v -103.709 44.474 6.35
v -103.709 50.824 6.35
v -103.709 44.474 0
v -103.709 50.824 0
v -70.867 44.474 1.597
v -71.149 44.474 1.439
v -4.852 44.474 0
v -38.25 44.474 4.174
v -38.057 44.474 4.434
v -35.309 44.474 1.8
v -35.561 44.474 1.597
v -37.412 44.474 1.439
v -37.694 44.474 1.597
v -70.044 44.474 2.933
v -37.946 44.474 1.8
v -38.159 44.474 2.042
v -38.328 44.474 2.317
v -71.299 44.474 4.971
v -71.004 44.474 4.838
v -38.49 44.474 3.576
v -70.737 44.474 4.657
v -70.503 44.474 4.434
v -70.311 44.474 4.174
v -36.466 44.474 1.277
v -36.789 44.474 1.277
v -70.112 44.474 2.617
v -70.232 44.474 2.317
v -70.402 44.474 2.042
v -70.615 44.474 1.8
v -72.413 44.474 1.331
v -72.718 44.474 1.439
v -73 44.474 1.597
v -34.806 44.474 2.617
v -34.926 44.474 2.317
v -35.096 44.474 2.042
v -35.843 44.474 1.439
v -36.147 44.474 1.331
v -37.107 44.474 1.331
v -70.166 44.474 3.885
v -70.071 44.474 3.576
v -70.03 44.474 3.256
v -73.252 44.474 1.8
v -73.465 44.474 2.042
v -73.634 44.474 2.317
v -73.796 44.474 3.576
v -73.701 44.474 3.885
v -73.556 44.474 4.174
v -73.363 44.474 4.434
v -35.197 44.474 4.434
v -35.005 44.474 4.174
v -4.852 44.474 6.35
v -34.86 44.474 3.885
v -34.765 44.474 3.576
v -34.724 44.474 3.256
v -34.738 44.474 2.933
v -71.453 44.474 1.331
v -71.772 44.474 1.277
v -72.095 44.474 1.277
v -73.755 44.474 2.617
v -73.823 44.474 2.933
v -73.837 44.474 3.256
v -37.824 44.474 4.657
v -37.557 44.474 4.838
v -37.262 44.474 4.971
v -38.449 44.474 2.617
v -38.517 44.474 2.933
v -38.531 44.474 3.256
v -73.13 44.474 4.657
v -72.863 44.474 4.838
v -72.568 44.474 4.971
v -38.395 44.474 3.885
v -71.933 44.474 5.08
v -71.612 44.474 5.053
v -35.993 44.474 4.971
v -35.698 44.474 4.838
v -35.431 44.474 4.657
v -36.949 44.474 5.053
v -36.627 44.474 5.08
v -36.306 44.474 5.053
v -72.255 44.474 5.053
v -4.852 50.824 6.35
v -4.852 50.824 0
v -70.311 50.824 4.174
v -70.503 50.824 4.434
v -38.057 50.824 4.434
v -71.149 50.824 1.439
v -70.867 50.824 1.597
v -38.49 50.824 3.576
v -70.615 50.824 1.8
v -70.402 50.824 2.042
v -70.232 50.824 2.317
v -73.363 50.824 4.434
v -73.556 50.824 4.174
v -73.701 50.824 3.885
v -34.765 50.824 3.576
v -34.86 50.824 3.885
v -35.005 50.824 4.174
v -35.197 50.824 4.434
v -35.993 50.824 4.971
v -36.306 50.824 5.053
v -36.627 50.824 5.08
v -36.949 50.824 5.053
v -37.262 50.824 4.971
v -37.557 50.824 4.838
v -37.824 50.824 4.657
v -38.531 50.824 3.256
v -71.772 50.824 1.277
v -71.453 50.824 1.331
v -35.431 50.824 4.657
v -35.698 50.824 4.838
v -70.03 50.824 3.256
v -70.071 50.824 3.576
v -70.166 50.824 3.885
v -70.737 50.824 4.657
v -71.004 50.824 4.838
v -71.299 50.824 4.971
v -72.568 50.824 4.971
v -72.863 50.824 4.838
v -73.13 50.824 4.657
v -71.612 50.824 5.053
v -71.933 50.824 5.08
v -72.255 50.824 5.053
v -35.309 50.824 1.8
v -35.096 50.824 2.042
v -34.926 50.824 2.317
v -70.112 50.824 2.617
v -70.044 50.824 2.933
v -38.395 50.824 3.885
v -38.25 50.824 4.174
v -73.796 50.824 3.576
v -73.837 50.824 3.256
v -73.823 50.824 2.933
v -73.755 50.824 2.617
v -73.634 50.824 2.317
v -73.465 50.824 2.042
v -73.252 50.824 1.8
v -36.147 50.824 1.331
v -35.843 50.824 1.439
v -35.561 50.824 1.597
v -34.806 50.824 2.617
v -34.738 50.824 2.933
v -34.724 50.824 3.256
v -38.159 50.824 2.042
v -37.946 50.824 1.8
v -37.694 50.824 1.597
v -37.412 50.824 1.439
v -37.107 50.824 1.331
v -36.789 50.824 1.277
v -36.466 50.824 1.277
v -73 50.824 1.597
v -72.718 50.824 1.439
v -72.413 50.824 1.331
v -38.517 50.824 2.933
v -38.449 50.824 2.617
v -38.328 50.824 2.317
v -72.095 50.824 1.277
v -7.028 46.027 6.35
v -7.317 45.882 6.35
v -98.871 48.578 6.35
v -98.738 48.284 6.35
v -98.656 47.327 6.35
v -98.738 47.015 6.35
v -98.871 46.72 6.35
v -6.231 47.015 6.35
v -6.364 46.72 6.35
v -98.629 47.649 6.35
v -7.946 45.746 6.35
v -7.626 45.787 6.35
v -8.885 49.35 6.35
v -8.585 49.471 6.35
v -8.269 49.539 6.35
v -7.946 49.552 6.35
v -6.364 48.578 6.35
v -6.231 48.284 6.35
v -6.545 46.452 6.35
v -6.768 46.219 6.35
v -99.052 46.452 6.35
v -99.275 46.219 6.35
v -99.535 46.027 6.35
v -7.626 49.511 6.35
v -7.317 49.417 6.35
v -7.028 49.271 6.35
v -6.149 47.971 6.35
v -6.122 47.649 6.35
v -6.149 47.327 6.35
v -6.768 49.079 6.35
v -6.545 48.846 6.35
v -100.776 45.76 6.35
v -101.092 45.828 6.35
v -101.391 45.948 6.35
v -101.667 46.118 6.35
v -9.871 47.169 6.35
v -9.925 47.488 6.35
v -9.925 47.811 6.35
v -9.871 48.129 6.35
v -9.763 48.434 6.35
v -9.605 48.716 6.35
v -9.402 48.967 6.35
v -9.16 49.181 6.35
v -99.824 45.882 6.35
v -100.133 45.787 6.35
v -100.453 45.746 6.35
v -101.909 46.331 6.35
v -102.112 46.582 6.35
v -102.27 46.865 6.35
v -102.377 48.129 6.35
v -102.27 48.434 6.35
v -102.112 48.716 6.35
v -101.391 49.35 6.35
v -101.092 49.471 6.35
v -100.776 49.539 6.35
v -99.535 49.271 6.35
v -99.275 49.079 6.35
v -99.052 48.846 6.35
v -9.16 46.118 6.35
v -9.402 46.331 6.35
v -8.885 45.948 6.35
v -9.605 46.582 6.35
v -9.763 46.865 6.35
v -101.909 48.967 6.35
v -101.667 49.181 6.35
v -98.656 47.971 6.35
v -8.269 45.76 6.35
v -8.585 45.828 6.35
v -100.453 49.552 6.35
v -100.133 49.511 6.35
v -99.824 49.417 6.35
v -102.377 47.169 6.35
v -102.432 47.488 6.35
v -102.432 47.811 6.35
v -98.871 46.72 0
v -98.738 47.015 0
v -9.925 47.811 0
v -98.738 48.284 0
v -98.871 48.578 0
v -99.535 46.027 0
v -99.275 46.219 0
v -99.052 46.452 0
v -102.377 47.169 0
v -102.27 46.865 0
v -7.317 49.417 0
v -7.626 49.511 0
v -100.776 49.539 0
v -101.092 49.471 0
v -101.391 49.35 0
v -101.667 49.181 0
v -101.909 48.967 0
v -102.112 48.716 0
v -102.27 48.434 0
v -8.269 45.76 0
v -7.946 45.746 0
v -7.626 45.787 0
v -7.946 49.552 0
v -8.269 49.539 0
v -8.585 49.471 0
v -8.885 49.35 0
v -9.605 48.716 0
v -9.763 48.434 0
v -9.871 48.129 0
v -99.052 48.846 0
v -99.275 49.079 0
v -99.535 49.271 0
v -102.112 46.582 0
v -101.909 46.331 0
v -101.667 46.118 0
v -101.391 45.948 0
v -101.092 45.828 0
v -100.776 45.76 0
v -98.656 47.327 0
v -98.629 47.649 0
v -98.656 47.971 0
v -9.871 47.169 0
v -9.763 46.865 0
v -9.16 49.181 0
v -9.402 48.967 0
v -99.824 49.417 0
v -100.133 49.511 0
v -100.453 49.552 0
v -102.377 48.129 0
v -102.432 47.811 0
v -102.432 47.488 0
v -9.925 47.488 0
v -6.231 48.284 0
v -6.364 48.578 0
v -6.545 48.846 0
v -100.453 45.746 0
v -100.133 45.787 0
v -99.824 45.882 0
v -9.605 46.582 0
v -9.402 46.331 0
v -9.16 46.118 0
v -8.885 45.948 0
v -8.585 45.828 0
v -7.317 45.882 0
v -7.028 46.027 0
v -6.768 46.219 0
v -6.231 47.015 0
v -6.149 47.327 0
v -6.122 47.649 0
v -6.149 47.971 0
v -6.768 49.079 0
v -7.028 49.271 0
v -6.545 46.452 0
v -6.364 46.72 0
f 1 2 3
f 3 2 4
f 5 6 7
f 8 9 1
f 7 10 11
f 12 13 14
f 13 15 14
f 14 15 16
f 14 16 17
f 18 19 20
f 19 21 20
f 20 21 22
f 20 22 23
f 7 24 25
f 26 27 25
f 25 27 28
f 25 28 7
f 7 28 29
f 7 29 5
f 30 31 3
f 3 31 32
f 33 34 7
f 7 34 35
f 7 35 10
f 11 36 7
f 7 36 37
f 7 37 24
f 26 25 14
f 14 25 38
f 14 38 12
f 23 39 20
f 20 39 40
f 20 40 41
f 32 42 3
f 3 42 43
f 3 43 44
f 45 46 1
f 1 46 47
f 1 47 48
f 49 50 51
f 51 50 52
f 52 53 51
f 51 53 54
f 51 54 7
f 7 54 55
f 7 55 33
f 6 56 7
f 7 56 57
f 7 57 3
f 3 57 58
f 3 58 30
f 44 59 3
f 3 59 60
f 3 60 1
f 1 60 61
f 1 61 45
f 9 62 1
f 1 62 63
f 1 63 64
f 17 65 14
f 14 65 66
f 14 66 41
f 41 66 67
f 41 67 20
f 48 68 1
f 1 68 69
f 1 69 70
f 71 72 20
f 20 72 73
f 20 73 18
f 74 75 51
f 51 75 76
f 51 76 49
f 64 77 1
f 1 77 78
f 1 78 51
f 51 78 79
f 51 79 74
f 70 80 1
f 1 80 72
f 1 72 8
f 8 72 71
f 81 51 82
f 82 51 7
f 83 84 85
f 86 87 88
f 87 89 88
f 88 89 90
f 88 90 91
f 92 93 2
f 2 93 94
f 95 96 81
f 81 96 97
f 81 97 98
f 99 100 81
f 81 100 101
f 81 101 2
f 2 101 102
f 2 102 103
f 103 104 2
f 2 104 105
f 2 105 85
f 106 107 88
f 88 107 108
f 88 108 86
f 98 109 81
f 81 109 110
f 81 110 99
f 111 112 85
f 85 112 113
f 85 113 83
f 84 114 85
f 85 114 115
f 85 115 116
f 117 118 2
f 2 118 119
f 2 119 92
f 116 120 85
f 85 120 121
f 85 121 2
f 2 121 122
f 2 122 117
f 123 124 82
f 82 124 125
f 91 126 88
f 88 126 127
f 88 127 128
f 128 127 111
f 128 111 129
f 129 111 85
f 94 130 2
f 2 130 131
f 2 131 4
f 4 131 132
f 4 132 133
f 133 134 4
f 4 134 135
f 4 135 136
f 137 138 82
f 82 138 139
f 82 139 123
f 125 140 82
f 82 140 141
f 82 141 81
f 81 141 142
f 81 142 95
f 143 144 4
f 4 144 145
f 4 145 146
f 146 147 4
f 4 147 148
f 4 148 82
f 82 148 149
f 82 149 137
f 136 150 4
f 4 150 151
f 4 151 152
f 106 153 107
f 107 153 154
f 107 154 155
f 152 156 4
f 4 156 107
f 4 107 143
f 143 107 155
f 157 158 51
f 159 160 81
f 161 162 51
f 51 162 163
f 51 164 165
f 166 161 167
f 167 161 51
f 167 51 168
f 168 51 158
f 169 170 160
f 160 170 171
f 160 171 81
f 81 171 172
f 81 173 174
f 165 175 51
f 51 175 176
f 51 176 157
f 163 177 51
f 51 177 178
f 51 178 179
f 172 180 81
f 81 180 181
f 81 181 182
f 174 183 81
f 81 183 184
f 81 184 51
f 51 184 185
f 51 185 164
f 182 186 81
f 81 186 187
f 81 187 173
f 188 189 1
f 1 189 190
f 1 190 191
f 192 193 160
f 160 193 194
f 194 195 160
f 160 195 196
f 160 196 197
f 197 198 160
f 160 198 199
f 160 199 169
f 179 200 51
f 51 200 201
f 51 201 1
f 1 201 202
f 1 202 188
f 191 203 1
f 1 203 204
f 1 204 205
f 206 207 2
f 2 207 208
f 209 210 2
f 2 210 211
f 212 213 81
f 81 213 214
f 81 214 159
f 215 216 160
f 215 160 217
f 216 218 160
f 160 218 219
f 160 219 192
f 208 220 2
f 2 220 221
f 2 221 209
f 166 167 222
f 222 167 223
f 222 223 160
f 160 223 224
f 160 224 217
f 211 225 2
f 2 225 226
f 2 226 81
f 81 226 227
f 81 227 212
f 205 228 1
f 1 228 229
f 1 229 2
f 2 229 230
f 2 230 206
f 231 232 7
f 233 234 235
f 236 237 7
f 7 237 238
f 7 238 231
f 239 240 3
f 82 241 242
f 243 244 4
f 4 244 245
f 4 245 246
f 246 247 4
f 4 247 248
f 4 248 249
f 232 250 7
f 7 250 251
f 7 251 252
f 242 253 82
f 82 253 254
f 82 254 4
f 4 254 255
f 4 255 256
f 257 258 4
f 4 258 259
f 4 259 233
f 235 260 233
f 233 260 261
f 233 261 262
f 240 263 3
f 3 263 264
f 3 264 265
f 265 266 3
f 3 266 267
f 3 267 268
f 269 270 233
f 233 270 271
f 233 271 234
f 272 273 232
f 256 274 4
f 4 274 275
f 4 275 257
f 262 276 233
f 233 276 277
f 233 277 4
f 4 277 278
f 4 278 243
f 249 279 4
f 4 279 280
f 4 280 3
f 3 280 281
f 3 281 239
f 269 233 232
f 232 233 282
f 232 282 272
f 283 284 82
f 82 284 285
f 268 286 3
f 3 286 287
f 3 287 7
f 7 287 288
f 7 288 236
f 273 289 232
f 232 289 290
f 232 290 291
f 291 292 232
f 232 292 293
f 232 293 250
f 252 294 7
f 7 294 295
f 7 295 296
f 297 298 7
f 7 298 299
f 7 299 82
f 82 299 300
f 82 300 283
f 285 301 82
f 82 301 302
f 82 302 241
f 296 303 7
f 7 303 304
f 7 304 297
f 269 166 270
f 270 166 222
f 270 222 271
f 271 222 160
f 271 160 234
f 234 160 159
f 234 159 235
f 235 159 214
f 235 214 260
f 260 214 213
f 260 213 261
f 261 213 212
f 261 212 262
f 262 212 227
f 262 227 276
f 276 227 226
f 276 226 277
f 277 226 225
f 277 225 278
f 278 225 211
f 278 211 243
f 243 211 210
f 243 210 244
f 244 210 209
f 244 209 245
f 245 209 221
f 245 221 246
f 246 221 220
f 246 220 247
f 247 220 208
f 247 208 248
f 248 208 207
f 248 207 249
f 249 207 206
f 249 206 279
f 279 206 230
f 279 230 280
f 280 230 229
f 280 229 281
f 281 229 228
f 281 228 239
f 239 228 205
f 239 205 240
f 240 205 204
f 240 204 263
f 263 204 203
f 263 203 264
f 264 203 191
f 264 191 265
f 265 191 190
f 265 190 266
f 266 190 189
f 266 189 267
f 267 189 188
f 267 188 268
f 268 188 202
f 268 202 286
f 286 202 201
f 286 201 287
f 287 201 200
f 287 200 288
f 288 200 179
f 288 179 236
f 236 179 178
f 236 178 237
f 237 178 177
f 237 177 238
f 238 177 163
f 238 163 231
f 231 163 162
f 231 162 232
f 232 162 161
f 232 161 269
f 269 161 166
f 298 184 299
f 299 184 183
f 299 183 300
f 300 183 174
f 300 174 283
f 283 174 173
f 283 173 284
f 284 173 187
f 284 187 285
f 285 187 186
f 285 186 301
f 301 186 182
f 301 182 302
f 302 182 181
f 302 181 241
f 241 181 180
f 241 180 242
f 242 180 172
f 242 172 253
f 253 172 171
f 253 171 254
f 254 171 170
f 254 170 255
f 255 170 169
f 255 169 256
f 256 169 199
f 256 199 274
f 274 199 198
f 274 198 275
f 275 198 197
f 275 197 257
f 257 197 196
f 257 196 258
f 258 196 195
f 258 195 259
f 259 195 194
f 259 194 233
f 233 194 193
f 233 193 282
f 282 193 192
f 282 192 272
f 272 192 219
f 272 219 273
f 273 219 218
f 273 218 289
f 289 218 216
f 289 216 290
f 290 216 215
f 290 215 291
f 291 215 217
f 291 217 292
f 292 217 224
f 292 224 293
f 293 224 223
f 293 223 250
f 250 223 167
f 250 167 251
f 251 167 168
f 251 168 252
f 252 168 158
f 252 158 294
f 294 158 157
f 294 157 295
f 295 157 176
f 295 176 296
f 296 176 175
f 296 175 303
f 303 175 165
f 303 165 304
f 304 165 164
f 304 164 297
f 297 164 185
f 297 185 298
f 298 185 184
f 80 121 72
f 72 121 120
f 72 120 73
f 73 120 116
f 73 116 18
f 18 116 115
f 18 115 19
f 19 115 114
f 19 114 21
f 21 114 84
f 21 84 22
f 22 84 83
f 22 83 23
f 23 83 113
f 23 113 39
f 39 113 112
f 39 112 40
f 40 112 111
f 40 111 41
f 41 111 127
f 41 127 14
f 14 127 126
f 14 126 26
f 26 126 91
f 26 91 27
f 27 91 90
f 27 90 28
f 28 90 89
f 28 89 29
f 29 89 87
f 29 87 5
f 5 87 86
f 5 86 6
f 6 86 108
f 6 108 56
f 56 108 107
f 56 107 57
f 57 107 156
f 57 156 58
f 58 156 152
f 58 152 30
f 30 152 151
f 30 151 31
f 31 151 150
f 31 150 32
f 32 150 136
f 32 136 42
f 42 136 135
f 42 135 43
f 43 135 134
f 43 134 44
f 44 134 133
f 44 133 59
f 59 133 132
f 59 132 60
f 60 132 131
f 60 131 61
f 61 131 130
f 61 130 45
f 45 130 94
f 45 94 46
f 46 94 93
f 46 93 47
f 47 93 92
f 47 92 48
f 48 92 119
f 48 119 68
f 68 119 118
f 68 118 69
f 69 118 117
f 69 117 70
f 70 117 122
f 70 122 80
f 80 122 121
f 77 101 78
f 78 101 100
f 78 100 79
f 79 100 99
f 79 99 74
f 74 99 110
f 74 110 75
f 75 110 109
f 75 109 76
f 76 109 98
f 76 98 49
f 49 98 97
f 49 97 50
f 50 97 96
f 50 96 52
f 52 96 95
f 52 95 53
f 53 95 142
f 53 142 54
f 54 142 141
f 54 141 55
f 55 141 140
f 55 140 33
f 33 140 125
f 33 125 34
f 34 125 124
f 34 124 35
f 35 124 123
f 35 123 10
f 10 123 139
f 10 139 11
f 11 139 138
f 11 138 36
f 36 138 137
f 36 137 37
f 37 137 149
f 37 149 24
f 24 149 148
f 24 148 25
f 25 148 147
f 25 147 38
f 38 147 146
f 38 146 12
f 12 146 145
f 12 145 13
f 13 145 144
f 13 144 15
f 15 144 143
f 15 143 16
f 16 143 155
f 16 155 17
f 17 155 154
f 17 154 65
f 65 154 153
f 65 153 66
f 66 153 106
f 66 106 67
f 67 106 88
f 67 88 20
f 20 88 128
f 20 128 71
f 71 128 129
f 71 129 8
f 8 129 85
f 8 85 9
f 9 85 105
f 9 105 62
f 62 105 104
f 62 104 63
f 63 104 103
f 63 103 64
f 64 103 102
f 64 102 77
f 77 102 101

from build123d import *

# Parameters (mm, degrees)
SKETCH1_W           = 98.8568
SKETCH1_H           = 6.35
BOSS_EXTRUDE1_DEPTH = 6.35
SKETCH2_R           = 1.905
CUT_EXTRUDE1_DEPTH  = 116.667416004
SKETCH3_R           = 1.905
CUT_EXTRUDE2_DEPTH  = 105.09694142


with BuildPart() as part:
    # Sketch1 → Boss-Extrude1 (new body)
    with BuildSketch(Plane.XY):
        with Locations((-54.280462751, 47.649210884)):
            Rectangle(SKETCH1_W, SKETCH1_H)
    extrude(amount=BOSS_EXTRUDE1_DEPTH)

    # Sketch2 → Cut-Extrude1 (cut, through all)
    with BuildSketch(Plane.XY.offset(6.35)):
        with Locations((-100.533862751, 47.649210884)):
            Circle(SKETCH2_R)
        with Locations((-8.027062751, 47.649210884)):
            Circle(SKETCH2_R)
    extrude(amount=-CUT_EXTRUDE1_DEPTH, mode=Mode.SUBTRACT)

    # Sketch3 → Cut-Extrude2 (cut, through all)
    with BuildSketch(Plane(origin=(0, 50.824210884, 0), x_dir=(1, 0, 0), z_dir=(0, 1, 0))):
        with Locations(Location((-71.933462751, -3.175, 0), (0, 0, 270))):
            Circle(SKETCH3_R)
        with Locations(Location((-36.627462751, -3.175, 0), (0, 0, 270))):
            Circle(SKETCH3_R)
    extrude(amount=-CUT_EXTRUDE2_DEPTH, mode=Mode.SUBTRACT)


solid = part.part
